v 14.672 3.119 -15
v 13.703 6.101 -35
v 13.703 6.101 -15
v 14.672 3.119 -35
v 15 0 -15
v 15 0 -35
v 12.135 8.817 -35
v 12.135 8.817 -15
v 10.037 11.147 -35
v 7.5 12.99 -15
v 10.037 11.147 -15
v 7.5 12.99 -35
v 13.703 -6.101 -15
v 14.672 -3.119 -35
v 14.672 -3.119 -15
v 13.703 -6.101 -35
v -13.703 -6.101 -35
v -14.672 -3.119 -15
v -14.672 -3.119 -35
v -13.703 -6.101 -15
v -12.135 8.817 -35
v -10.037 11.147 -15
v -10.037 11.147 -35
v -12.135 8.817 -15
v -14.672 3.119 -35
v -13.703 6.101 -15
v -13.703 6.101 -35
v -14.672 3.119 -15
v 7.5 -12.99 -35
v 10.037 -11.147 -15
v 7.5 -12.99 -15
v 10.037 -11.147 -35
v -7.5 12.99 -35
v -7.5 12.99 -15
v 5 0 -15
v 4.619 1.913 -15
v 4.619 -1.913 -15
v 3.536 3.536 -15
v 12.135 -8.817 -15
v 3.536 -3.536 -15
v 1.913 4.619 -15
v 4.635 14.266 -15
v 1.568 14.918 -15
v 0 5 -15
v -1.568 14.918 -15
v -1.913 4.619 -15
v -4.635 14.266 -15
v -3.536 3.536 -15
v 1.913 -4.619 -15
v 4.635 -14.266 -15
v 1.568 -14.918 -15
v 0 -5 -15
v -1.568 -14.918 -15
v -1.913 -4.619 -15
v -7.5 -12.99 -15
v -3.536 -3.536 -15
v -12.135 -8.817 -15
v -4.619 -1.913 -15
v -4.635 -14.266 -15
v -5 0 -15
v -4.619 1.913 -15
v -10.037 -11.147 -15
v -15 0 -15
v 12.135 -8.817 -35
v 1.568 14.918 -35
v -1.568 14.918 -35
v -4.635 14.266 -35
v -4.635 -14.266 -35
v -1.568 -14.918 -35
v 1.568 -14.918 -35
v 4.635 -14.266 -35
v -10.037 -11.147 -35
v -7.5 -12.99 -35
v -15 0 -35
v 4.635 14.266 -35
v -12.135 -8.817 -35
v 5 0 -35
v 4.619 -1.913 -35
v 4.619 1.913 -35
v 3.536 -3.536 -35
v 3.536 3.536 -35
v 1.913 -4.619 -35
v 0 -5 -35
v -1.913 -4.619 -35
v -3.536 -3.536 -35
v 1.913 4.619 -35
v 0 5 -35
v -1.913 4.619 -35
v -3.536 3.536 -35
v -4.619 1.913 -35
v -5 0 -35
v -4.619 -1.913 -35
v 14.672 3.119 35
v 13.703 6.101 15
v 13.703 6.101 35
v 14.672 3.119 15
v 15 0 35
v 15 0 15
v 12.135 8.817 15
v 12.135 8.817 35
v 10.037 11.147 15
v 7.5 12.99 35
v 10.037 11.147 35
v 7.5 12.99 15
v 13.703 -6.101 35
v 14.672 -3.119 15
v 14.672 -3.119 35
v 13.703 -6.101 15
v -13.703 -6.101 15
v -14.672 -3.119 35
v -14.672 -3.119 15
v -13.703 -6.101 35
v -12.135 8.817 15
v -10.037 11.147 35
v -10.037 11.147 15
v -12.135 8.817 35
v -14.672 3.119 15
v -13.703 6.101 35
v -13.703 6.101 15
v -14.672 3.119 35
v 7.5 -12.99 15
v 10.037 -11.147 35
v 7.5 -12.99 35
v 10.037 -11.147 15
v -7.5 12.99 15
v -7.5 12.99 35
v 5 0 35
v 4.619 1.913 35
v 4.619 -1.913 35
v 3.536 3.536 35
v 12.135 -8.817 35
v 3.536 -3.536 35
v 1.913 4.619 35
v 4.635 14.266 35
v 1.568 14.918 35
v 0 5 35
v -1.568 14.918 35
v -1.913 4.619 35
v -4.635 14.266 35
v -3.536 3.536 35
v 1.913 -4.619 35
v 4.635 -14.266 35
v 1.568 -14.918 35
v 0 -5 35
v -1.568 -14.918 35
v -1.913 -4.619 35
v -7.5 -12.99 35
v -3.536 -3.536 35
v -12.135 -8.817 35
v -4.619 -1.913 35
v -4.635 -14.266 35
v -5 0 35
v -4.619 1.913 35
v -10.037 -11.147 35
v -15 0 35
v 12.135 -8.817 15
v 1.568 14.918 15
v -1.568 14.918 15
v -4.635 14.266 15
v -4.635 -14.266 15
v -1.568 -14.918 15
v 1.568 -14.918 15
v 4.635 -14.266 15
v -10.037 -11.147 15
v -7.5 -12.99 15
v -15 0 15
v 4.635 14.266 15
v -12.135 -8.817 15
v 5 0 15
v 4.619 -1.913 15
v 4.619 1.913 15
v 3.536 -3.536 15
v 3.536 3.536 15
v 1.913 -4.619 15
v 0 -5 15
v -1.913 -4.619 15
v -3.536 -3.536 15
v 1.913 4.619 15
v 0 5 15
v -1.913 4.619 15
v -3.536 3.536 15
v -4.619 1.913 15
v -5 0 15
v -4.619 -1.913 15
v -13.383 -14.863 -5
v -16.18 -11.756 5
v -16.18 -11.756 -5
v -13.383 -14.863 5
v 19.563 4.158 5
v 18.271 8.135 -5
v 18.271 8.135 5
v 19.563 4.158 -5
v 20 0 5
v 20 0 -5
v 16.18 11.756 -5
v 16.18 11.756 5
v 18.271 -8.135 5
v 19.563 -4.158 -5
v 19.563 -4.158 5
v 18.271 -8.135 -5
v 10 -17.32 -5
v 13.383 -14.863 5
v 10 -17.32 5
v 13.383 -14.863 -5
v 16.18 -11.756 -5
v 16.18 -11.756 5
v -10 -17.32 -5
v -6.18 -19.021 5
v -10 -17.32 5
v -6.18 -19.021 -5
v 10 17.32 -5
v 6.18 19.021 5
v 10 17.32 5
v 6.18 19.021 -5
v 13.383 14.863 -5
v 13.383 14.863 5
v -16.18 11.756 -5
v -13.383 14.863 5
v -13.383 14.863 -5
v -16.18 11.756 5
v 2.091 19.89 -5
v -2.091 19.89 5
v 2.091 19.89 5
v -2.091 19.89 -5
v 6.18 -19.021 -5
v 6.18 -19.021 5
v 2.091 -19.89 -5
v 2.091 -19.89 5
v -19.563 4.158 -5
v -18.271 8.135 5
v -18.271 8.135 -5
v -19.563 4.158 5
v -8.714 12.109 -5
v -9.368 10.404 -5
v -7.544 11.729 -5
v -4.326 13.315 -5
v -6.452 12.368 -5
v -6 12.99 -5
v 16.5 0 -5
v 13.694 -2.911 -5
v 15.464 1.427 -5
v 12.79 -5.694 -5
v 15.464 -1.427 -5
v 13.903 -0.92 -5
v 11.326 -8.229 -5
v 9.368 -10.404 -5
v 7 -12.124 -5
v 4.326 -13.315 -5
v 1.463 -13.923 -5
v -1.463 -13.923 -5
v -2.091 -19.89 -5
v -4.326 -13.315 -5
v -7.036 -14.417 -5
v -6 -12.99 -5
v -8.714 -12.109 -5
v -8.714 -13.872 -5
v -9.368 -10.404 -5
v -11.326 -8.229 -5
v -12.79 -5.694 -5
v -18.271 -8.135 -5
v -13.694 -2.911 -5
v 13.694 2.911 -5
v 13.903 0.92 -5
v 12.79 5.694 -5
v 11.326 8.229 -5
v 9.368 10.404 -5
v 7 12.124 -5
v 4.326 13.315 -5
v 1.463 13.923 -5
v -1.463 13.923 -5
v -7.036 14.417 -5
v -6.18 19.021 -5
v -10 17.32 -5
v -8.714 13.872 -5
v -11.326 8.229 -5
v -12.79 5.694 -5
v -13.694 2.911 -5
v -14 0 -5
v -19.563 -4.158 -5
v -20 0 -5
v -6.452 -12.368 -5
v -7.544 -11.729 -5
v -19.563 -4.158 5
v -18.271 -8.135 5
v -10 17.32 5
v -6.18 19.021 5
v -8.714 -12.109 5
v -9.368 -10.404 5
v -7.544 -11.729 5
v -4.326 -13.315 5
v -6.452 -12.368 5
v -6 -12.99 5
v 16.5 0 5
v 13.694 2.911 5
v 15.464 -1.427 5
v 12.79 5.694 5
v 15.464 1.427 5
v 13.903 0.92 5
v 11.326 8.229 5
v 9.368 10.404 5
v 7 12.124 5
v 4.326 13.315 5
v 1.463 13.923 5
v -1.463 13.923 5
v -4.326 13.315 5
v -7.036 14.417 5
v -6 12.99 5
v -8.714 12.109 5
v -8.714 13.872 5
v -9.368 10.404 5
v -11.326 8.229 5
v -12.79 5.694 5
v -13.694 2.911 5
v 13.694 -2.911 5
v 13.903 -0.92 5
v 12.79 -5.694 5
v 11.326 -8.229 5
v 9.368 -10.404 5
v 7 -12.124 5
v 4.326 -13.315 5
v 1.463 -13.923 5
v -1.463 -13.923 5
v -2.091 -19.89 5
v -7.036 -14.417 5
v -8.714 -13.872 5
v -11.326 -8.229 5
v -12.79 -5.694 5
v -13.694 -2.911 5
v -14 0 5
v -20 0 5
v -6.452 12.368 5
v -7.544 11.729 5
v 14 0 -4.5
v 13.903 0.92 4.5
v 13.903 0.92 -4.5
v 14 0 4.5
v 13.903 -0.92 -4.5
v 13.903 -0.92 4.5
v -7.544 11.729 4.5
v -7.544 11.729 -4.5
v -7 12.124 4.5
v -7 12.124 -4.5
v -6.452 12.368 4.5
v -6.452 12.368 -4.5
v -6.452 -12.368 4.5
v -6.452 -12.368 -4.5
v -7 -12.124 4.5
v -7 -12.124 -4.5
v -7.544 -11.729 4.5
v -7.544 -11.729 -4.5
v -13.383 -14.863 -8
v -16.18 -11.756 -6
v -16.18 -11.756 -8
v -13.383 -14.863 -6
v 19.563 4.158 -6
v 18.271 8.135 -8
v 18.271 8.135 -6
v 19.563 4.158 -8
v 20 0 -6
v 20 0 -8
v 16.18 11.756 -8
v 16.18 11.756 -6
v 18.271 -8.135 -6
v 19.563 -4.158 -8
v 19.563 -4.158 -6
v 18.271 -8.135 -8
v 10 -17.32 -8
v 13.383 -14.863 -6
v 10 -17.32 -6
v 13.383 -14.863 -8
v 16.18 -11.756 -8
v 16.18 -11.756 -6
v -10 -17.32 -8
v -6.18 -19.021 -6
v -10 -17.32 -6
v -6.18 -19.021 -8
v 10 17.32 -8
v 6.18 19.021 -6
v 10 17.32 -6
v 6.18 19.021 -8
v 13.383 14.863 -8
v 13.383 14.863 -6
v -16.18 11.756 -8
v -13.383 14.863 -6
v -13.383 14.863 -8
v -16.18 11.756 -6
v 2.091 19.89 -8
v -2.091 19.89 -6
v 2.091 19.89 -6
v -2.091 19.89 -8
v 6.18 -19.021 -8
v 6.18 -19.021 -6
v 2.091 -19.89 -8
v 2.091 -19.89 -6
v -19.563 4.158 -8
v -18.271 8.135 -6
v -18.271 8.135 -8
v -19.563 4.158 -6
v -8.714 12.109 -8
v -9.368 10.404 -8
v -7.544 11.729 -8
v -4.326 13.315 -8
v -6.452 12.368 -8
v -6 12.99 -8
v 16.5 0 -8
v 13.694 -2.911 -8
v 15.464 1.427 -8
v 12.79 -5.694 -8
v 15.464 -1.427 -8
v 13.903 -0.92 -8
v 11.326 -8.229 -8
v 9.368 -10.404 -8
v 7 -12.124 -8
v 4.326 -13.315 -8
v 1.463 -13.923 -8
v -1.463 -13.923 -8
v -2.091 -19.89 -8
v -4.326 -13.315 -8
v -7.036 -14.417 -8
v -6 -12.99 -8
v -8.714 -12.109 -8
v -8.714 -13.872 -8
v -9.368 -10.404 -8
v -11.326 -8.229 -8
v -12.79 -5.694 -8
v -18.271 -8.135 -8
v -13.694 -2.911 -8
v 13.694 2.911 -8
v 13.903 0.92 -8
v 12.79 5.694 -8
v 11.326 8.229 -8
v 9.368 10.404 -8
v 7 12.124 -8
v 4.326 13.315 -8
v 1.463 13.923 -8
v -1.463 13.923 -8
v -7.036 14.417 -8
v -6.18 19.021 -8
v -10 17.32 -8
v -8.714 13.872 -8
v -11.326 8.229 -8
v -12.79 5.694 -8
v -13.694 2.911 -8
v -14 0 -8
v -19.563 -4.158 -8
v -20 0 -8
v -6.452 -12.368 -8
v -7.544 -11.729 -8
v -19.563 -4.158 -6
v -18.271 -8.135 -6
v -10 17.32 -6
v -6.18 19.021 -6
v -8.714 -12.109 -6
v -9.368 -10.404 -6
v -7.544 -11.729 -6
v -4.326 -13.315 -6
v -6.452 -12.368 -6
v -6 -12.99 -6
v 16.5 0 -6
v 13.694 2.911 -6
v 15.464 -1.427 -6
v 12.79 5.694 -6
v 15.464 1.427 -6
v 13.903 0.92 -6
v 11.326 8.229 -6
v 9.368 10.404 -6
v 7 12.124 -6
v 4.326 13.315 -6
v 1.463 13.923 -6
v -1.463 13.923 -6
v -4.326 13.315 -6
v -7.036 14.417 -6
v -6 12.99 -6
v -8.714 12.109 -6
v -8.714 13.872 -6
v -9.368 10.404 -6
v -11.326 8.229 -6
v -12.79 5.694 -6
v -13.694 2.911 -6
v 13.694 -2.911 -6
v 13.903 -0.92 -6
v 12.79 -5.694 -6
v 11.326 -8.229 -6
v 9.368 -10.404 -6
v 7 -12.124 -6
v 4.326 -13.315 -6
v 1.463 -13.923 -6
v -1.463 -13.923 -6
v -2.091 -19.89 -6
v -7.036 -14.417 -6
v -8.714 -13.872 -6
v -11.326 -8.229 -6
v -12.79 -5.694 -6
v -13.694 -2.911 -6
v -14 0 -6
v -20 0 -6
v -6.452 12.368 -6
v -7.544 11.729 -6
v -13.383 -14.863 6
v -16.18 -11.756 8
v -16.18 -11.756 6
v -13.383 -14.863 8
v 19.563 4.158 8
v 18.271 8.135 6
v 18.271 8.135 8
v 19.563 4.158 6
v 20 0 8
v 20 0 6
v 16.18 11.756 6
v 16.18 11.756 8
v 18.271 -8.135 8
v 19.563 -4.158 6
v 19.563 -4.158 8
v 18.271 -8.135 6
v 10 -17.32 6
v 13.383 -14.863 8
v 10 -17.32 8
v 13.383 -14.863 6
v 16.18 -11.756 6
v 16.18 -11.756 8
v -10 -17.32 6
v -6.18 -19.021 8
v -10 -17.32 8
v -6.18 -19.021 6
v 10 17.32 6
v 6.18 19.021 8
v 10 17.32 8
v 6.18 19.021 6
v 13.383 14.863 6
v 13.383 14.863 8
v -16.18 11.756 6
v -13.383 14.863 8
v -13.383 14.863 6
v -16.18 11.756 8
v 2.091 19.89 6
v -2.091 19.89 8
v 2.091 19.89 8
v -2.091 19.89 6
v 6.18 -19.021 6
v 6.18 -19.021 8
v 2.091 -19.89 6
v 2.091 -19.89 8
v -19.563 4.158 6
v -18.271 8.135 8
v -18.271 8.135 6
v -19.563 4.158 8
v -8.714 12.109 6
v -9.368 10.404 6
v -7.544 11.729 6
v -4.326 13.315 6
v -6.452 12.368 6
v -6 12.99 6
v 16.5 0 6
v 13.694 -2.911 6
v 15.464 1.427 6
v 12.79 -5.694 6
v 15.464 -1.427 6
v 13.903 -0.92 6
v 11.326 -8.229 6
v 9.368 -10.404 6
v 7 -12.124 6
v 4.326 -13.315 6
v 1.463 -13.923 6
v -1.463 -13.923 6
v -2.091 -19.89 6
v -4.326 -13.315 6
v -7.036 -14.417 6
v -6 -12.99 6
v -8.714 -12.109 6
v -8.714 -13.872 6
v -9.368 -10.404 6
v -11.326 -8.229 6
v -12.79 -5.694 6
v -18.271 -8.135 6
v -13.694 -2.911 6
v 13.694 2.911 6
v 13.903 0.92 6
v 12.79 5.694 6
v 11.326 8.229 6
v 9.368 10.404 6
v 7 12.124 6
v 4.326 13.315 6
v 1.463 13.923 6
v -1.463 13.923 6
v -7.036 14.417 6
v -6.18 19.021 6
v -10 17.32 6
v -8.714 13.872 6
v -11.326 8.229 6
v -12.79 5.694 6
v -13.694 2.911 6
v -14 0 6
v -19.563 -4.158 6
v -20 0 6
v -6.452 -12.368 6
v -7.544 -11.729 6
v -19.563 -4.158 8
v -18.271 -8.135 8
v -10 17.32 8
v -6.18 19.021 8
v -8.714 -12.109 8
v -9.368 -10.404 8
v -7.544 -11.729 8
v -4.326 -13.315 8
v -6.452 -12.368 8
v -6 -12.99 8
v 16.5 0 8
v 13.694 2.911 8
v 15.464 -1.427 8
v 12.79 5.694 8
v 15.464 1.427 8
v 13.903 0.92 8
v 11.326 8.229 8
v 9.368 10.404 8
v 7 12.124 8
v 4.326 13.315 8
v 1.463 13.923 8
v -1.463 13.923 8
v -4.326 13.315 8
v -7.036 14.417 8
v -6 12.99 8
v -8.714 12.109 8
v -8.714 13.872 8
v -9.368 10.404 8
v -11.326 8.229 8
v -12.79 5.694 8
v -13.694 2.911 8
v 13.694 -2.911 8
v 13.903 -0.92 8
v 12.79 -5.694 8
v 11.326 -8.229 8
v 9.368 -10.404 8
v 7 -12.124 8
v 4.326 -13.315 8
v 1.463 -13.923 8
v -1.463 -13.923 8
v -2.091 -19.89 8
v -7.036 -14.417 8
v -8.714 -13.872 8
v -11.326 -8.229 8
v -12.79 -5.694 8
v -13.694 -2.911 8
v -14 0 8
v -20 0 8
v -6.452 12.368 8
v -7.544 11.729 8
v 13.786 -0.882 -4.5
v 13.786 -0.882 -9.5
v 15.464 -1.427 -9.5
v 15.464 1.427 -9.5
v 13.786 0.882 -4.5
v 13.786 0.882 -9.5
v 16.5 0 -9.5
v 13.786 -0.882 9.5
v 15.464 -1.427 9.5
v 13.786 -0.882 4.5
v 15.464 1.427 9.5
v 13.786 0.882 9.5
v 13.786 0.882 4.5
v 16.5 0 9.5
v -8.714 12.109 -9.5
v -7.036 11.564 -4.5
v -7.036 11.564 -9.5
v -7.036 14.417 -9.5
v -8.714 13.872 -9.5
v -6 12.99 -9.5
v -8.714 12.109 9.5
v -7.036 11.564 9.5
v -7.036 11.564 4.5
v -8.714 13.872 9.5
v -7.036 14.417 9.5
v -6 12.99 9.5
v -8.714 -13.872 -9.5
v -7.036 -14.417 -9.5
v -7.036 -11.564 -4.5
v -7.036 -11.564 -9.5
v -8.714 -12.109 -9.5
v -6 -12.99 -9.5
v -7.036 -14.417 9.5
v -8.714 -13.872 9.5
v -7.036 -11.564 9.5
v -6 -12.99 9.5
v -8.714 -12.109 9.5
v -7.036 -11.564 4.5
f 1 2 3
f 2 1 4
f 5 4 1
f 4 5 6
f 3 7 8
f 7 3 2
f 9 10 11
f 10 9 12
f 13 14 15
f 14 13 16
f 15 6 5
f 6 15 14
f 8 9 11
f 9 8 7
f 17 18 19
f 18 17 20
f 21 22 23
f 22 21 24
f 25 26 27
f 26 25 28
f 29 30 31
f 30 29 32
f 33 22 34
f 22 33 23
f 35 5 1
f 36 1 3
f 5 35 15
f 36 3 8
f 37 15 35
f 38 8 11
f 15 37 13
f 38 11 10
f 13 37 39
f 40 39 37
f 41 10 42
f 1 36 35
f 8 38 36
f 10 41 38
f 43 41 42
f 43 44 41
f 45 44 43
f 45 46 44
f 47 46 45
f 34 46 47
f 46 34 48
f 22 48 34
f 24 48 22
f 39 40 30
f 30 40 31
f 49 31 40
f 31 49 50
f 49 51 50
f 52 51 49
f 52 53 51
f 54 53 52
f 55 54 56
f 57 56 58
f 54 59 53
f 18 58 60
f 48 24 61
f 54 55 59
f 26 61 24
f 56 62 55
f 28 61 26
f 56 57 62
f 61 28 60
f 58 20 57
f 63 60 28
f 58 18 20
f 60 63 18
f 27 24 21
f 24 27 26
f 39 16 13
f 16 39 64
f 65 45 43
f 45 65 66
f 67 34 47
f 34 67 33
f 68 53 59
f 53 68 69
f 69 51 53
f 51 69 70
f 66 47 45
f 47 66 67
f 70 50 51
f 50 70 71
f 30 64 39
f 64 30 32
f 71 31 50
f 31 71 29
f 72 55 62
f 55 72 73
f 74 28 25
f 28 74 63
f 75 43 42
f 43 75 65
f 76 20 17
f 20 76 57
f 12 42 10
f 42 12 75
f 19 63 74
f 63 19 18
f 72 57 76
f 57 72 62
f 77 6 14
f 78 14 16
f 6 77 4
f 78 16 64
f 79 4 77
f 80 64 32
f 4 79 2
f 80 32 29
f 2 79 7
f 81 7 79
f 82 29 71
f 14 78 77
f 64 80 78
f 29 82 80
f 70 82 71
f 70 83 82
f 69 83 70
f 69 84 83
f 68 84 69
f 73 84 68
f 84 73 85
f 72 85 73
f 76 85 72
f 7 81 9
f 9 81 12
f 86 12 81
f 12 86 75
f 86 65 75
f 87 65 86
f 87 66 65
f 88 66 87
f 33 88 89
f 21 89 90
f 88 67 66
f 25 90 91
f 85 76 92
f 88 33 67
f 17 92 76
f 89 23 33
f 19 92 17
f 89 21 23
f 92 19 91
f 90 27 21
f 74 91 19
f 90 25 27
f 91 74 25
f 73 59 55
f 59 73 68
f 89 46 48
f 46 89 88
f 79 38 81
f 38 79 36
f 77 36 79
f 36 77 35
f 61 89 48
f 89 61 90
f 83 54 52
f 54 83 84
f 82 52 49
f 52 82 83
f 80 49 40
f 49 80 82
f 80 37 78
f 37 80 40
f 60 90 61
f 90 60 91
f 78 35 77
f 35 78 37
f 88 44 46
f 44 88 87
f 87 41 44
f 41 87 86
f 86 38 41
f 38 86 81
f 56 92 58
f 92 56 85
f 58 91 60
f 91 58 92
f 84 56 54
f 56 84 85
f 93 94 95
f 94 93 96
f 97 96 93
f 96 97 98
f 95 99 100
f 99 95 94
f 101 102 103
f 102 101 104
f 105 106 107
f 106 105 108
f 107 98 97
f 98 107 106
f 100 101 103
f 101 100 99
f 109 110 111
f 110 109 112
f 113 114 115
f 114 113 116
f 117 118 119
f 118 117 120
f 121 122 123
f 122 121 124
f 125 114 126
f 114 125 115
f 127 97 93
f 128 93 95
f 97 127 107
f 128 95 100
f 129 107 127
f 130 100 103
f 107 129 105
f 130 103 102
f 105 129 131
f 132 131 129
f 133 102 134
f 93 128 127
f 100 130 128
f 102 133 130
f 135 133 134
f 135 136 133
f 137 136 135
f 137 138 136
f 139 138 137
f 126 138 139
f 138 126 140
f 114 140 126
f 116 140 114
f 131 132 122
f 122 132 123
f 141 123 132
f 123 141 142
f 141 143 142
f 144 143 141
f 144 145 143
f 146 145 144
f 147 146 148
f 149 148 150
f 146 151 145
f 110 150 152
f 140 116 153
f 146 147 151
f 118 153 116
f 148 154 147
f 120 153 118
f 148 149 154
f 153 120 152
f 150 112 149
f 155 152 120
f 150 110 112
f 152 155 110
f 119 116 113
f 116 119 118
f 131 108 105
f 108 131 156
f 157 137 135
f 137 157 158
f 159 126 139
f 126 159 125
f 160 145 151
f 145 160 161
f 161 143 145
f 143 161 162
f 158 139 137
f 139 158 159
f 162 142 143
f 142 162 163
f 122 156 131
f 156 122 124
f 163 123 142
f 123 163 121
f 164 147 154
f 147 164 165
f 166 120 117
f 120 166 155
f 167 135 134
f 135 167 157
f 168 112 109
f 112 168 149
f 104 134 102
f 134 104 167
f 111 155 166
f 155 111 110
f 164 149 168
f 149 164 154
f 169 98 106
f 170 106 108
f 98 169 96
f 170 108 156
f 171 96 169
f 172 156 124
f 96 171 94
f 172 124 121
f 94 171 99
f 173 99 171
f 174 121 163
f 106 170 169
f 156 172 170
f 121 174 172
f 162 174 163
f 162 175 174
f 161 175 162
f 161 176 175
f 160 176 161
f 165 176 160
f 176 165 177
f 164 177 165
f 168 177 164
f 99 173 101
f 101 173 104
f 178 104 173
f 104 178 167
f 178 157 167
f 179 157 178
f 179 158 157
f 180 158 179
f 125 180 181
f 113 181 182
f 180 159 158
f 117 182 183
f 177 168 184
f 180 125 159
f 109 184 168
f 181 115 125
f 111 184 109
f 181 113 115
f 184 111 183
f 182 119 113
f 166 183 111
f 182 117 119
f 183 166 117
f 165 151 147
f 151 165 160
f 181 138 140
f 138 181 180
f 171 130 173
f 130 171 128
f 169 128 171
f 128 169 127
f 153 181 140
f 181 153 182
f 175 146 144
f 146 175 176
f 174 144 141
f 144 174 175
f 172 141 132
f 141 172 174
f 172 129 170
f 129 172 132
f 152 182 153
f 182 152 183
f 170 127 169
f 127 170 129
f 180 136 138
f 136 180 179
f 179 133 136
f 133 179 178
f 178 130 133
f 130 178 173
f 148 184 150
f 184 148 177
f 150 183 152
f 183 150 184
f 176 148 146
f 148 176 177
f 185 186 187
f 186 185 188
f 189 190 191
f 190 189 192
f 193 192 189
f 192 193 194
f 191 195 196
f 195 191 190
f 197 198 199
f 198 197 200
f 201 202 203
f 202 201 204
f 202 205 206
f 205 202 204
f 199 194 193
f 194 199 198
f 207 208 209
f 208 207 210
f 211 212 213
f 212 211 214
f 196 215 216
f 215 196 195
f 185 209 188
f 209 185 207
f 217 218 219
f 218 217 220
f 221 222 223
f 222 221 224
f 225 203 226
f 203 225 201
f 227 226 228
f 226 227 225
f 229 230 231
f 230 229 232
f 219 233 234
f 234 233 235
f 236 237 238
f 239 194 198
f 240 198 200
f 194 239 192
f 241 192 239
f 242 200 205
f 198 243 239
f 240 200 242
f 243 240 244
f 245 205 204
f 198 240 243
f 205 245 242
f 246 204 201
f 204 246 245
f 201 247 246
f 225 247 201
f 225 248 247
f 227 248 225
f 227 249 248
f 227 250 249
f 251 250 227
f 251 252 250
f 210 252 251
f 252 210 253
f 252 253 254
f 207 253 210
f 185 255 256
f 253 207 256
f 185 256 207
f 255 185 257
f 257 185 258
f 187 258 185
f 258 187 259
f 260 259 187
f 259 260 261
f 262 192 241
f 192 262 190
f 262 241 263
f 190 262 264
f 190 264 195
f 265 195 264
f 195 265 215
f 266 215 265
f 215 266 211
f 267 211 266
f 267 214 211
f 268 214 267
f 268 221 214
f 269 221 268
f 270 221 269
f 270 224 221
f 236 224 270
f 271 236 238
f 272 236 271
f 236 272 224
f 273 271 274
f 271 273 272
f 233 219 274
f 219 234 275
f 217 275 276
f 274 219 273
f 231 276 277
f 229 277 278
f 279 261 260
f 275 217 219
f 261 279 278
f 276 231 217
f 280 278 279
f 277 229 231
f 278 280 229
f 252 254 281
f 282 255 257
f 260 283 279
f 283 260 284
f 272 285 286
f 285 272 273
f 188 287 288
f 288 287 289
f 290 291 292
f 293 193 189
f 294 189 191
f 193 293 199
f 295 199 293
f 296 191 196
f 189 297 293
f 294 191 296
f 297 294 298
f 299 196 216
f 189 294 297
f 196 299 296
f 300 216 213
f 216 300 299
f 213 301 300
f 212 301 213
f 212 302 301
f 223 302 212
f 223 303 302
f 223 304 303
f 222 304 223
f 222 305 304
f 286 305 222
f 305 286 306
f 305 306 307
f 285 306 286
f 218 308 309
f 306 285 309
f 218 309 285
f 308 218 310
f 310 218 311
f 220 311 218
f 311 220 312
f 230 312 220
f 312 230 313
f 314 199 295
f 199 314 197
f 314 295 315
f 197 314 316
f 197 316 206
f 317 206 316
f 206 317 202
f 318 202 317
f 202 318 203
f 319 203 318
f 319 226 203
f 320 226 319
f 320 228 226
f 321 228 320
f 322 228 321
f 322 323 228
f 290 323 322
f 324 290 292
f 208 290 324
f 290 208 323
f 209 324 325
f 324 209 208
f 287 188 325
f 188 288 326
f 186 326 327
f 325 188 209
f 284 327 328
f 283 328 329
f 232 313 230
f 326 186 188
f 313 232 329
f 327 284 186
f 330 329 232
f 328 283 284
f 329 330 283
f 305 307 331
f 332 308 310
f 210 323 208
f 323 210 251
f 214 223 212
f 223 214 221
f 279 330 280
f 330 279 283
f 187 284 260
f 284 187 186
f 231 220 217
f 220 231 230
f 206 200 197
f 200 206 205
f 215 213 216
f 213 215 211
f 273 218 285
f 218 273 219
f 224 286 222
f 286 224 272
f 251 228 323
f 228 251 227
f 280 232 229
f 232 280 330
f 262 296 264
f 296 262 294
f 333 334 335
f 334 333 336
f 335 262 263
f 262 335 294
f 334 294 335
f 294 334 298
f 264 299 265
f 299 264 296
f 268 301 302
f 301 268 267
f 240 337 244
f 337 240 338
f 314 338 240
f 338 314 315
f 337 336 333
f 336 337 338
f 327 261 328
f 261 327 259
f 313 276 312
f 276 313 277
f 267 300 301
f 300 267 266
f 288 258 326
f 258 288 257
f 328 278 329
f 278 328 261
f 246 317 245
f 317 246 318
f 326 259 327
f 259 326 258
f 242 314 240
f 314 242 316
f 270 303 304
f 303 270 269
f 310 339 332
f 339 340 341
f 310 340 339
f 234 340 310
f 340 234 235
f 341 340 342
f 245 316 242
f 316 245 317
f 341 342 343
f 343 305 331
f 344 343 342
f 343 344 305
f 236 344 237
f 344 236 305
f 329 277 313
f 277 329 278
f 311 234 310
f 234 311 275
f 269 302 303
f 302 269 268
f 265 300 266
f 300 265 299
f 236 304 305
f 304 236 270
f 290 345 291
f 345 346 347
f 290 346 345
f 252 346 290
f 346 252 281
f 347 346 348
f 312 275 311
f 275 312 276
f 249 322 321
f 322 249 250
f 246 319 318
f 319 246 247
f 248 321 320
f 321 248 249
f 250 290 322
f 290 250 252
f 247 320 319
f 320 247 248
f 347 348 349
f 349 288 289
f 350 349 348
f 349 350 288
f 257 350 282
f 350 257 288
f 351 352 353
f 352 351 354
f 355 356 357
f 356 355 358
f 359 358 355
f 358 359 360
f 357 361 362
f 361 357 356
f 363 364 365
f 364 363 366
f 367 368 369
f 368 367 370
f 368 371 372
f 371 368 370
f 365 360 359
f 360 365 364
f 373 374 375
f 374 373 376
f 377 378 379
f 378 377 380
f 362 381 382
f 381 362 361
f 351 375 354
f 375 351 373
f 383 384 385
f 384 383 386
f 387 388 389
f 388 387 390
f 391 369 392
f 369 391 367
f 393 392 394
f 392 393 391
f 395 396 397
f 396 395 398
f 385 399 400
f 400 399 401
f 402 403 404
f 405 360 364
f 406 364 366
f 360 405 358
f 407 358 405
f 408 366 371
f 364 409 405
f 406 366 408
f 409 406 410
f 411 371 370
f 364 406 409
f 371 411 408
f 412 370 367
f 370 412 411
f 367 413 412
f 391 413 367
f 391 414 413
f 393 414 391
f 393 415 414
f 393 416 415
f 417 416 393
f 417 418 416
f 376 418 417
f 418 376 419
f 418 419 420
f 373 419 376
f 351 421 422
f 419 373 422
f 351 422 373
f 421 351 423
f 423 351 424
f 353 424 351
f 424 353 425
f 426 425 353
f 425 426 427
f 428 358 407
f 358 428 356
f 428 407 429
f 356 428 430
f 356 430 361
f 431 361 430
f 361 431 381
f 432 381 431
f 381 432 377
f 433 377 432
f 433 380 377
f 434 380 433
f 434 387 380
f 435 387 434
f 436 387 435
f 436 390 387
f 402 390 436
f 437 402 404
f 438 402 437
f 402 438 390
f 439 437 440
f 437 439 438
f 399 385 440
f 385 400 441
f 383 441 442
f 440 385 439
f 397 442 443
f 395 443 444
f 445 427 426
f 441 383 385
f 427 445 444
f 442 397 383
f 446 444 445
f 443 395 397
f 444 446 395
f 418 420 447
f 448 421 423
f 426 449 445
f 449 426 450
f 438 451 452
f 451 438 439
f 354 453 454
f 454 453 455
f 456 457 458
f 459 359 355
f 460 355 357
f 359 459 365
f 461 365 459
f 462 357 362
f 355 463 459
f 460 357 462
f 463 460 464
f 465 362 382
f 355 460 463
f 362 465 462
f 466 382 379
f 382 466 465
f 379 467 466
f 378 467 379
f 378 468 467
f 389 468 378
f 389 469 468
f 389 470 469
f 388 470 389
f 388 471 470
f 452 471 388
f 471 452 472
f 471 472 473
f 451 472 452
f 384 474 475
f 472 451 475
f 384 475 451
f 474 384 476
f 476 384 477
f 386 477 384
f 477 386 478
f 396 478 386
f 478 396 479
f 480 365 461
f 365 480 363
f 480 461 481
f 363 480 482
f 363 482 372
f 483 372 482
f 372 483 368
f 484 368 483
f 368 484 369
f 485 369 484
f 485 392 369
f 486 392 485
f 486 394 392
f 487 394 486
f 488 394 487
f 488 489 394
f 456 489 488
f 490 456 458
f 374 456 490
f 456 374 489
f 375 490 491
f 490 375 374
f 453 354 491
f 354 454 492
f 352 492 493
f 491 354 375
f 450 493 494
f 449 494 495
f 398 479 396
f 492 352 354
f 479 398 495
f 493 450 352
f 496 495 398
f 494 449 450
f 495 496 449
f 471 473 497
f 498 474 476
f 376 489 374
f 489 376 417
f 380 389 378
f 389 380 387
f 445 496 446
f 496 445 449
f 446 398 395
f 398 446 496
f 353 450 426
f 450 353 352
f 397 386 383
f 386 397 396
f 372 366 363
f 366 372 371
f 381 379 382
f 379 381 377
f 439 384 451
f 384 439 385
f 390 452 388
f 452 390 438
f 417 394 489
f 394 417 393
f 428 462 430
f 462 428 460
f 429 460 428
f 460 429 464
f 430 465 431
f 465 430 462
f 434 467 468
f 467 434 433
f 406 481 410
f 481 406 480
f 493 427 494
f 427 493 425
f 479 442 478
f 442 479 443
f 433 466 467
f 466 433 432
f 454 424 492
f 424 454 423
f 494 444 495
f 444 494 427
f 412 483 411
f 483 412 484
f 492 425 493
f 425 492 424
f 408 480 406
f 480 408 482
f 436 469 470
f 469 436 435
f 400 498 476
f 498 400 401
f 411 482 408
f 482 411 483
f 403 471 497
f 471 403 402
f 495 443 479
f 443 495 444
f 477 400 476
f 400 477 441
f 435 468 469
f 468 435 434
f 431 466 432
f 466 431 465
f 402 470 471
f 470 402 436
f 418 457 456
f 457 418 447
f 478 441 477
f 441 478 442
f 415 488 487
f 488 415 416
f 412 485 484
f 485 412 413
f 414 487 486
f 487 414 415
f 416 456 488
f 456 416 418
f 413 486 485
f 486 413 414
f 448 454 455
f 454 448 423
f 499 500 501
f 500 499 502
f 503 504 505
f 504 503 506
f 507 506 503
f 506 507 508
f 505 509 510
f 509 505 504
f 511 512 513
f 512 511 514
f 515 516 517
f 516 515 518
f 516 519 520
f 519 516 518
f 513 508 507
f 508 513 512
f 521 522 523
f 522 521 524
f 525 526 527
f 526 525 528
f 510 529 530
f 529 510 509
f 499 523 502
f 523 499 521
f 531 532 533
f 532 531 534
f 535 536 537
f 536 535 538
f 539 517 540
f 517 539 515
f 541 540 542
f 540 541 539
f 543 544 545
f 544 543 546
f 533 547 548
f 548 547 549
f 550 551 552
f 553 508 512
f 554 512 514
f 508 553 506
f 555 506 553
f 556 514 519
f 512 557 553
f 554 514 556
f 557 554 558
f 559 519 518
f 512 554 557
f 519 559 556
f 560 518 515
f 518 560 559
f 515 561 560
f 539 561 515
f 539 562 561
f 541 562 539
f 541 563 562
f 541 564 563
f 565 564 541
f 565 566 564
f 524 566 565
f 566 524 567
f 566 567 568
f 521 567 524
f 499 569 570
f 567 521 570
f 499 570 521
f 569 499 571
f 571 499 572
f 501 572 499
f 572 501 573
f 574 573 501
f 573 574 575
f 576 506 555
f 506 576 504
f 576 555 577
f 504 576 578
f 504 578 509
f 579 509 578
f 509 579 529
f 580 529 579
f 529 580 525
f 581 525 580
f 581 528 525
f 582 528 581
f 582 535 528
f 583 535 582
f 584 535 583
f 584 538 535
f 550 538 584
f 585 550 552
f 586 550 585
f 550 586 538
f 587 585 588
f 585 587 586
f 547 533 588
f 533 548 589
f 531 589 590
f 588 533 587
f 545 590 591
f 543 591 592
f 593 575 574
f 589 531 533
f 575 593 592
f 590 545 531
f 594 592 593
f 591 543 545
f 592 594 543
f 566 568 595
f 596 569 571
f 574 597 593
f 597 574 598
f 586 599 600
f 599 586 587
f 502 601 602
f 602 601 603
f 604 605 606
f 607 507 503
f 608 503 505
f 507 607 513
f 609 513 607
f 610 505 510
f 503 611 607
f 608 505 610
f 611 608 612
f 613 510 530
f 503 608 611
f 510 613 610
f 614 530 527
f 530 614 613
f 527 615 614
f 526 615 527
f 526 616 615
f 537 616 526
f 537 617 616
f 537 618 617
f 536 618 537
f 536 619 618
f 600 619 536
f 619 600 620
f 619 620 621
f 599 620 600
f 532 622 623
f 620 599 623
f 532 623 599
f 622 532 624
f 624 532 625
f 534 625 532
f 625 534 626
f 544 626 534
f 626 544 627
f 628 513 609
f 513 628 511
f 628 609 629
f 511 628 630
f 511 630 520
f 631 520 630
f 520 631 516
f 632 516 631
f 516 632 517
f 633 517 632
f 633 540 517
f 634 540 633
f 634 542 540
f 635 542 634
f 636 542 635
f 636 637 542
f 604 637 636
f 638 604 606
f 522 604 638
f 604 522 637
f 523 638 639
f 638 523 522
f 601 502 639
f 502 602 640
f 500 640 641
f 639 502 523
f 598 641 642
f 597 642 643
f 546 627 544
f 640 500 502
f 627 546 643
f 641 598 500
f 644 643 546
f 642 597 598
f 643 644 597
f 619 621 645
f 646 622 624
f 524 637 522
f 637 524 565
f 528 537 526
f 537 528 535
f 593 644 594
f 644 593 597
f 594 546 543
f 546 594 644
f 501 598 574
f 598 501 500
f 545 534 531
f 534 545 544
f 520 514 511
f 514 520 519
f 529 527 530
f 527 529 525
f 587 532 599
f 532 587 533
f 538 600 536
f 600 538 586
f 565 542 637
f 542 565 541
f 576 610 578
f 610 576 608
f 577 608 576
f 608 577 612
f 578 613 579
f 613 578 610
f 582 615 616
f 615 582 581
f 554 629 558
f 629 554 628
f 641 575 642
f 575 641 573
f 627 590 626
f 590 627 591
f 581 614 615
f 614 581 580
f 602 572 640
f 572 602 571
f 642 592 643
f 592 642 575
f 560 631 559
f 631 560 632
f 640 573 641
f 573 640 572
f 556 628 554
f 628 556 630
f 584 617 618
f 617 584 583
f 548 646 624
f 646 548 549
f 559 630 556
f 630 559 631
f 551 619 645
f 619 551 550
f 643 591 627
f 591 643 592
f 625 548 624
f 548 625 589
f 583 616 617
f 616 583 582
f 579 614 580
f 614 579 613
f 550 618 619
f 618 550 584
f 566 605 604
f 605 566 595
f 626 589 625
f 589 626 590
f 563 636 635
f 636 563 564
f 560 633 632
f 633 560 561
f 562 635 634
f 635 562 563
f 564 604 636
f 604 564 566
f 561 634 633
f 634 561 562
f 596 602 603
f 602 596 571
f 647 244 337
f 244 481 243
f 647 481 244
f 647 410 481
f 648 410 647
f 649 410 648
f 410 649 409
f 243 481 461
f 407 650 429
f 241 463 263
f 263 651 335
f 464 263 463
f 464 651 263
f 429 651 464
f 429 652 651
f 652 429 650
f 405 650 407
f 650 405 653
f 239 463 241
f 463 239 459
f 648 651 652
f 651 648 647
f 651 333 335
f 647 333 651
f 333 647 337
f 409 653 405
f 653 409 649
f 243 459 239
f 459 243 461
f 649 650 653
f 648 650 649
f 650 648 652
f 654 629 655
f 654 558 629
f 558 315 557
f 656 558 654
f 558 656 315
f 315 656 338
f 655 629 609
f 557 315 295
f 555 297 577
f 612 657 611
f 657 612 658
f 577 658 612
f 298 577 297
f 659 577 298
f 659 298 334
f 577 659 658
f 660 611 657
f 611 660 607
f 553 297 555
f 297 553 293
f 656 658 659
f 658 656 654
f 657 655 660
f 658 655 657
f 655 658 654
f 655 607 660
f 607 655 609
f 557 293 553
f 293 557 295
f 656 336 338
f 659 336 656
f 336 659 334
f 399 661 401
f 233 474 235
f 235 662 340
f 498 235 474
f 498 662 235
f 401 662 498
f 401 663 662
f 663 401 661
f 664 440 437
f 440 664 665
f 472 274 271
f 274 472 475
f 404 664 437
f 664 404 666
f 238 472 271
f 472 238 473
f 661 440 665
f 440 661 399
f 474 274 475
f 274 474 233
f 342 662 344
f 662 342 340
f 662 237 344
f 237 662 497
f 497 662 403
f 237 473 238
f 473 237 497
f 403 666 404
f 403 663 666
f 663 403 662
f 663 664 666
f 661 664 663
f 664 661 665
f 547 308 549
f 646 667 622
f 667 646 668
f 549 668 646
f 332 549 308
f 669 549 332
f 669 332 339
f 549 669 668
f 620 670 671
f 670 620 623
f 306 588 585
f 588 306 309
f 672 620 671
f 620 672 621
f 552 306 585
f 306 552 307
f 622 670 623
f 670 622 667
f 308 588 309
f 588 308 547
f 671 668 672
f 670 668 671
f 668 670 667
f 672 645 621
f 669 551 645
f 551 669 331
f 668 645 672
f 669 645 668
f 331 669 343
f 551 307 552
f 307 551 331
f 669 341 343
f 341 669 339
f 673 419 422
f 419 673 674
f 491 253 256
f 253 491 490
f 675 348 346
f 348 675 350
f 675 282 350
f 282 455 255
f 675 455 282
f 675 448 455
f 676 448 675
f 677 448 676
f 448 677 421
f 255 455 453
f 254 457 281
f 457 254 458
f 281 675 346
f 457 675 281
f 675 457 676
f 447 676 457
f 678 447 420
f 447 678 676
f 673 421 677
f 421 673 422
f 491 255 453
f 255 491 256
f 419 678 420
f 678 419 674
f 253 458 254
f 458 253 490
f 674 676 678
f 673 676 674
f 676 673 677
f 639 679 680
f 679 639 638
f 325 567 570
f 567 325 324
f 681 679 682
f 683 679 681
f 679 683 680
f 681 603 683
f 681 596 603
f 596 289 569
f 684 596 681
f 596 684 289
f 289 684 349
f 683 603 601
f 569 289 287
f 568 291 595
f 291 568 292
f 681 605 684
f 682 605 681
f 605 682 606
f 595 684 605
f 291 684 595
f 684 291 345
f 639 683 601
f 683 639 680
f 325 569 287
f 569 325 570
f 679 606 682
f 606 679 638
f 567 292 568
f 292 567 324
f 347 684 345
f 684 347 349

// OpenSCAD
// Parameters
hub_diameter = 30;
hub_length = 20;
shaft_hole_diameter = 10;
flexible_element_outer_diameter = 40;
flexible_element_inner_diameter = 28;
flexible_element_thickness = 10;
retaining_ring_thickness = 2;
screw_diameter = 3;
screw_length = 5;
num_screws = 3;
screw_spacing_radius = 15;

// Input Shaft Hub
module input_shaft_hub() {
    difference() {
        cylinder(d=hub_diameter, h=hub_length, center=true);
        cylinder(d=shaft_hole_diameter, h=hub_length + 2, center=true);
    }
}

// Output Shaft Hub
module output_shaft_hub() {
    difference() {
        cylinder(d=hub_diameter, h=hub_length, center=true);
        cylinder(d=shaft_hole_diameter, h=hub_length + 2, center=true);
    }
}

// Flexible Element
module flexible_element() {
    difference() {
        cylinder(d=flexible_element_outer_diameter, h=flexible_element_thickness, center=true);
        cylinder(d=flexible_element_inner_diameter, h=flexible_element_thickness + 2, center=true);
    }
}

// Retaining Ring
module retaining_ring() {
    difference() {
        cylinder(d=flexible_element_outer_diameter, h=retaining_ring_thickness, center=true);
        cylinder(d=flexible_element_inner_diameter, h=retaining_ring_thickness + 2, center=true);
    }
}

// Fastening Screws
module fastening_screw() {
    cylinder(d=screw_diameter, h=screw_length, center=true);
}

// Assembly
module coupling_assembly() {
    translate([0, 0, -hub_length - flexible_element_thickness / 2])
        input_shaft_hub();
    
    translate([0, 0, hub_length + flexible_element_thickness / 2])
        output_shaft_hub();
    
    translate([0, 0, 0])
        flexible_element();
    
    translate([0, 0, -flexible_element_thickness / 2 - retaining_ring_thickness])
        retaining_ring();
    
    translate([0, 0, flexible_element_thickness / 2 + retaining_ring_thickness])
        retaining_ring();
    
    for (i = [0:num_screws-1]) {
        angle = i * 360 / num_screws;
        translate([screw_spacing_radius * cos(angle), screw_spacing_radius * sin(angle), -flexible_element_thickness / 2 - retaining_ring_thickness])
            fastening_screw();
        
        translate([screw_spacing_radius * cos(angle), screw_spacing_radius * sin(angle), flexible_element_thickness / 2 + retaining_ring_thickness])
            fastening_screw();
    }
}

// Render the coupling assembly
coupling_assembly();
